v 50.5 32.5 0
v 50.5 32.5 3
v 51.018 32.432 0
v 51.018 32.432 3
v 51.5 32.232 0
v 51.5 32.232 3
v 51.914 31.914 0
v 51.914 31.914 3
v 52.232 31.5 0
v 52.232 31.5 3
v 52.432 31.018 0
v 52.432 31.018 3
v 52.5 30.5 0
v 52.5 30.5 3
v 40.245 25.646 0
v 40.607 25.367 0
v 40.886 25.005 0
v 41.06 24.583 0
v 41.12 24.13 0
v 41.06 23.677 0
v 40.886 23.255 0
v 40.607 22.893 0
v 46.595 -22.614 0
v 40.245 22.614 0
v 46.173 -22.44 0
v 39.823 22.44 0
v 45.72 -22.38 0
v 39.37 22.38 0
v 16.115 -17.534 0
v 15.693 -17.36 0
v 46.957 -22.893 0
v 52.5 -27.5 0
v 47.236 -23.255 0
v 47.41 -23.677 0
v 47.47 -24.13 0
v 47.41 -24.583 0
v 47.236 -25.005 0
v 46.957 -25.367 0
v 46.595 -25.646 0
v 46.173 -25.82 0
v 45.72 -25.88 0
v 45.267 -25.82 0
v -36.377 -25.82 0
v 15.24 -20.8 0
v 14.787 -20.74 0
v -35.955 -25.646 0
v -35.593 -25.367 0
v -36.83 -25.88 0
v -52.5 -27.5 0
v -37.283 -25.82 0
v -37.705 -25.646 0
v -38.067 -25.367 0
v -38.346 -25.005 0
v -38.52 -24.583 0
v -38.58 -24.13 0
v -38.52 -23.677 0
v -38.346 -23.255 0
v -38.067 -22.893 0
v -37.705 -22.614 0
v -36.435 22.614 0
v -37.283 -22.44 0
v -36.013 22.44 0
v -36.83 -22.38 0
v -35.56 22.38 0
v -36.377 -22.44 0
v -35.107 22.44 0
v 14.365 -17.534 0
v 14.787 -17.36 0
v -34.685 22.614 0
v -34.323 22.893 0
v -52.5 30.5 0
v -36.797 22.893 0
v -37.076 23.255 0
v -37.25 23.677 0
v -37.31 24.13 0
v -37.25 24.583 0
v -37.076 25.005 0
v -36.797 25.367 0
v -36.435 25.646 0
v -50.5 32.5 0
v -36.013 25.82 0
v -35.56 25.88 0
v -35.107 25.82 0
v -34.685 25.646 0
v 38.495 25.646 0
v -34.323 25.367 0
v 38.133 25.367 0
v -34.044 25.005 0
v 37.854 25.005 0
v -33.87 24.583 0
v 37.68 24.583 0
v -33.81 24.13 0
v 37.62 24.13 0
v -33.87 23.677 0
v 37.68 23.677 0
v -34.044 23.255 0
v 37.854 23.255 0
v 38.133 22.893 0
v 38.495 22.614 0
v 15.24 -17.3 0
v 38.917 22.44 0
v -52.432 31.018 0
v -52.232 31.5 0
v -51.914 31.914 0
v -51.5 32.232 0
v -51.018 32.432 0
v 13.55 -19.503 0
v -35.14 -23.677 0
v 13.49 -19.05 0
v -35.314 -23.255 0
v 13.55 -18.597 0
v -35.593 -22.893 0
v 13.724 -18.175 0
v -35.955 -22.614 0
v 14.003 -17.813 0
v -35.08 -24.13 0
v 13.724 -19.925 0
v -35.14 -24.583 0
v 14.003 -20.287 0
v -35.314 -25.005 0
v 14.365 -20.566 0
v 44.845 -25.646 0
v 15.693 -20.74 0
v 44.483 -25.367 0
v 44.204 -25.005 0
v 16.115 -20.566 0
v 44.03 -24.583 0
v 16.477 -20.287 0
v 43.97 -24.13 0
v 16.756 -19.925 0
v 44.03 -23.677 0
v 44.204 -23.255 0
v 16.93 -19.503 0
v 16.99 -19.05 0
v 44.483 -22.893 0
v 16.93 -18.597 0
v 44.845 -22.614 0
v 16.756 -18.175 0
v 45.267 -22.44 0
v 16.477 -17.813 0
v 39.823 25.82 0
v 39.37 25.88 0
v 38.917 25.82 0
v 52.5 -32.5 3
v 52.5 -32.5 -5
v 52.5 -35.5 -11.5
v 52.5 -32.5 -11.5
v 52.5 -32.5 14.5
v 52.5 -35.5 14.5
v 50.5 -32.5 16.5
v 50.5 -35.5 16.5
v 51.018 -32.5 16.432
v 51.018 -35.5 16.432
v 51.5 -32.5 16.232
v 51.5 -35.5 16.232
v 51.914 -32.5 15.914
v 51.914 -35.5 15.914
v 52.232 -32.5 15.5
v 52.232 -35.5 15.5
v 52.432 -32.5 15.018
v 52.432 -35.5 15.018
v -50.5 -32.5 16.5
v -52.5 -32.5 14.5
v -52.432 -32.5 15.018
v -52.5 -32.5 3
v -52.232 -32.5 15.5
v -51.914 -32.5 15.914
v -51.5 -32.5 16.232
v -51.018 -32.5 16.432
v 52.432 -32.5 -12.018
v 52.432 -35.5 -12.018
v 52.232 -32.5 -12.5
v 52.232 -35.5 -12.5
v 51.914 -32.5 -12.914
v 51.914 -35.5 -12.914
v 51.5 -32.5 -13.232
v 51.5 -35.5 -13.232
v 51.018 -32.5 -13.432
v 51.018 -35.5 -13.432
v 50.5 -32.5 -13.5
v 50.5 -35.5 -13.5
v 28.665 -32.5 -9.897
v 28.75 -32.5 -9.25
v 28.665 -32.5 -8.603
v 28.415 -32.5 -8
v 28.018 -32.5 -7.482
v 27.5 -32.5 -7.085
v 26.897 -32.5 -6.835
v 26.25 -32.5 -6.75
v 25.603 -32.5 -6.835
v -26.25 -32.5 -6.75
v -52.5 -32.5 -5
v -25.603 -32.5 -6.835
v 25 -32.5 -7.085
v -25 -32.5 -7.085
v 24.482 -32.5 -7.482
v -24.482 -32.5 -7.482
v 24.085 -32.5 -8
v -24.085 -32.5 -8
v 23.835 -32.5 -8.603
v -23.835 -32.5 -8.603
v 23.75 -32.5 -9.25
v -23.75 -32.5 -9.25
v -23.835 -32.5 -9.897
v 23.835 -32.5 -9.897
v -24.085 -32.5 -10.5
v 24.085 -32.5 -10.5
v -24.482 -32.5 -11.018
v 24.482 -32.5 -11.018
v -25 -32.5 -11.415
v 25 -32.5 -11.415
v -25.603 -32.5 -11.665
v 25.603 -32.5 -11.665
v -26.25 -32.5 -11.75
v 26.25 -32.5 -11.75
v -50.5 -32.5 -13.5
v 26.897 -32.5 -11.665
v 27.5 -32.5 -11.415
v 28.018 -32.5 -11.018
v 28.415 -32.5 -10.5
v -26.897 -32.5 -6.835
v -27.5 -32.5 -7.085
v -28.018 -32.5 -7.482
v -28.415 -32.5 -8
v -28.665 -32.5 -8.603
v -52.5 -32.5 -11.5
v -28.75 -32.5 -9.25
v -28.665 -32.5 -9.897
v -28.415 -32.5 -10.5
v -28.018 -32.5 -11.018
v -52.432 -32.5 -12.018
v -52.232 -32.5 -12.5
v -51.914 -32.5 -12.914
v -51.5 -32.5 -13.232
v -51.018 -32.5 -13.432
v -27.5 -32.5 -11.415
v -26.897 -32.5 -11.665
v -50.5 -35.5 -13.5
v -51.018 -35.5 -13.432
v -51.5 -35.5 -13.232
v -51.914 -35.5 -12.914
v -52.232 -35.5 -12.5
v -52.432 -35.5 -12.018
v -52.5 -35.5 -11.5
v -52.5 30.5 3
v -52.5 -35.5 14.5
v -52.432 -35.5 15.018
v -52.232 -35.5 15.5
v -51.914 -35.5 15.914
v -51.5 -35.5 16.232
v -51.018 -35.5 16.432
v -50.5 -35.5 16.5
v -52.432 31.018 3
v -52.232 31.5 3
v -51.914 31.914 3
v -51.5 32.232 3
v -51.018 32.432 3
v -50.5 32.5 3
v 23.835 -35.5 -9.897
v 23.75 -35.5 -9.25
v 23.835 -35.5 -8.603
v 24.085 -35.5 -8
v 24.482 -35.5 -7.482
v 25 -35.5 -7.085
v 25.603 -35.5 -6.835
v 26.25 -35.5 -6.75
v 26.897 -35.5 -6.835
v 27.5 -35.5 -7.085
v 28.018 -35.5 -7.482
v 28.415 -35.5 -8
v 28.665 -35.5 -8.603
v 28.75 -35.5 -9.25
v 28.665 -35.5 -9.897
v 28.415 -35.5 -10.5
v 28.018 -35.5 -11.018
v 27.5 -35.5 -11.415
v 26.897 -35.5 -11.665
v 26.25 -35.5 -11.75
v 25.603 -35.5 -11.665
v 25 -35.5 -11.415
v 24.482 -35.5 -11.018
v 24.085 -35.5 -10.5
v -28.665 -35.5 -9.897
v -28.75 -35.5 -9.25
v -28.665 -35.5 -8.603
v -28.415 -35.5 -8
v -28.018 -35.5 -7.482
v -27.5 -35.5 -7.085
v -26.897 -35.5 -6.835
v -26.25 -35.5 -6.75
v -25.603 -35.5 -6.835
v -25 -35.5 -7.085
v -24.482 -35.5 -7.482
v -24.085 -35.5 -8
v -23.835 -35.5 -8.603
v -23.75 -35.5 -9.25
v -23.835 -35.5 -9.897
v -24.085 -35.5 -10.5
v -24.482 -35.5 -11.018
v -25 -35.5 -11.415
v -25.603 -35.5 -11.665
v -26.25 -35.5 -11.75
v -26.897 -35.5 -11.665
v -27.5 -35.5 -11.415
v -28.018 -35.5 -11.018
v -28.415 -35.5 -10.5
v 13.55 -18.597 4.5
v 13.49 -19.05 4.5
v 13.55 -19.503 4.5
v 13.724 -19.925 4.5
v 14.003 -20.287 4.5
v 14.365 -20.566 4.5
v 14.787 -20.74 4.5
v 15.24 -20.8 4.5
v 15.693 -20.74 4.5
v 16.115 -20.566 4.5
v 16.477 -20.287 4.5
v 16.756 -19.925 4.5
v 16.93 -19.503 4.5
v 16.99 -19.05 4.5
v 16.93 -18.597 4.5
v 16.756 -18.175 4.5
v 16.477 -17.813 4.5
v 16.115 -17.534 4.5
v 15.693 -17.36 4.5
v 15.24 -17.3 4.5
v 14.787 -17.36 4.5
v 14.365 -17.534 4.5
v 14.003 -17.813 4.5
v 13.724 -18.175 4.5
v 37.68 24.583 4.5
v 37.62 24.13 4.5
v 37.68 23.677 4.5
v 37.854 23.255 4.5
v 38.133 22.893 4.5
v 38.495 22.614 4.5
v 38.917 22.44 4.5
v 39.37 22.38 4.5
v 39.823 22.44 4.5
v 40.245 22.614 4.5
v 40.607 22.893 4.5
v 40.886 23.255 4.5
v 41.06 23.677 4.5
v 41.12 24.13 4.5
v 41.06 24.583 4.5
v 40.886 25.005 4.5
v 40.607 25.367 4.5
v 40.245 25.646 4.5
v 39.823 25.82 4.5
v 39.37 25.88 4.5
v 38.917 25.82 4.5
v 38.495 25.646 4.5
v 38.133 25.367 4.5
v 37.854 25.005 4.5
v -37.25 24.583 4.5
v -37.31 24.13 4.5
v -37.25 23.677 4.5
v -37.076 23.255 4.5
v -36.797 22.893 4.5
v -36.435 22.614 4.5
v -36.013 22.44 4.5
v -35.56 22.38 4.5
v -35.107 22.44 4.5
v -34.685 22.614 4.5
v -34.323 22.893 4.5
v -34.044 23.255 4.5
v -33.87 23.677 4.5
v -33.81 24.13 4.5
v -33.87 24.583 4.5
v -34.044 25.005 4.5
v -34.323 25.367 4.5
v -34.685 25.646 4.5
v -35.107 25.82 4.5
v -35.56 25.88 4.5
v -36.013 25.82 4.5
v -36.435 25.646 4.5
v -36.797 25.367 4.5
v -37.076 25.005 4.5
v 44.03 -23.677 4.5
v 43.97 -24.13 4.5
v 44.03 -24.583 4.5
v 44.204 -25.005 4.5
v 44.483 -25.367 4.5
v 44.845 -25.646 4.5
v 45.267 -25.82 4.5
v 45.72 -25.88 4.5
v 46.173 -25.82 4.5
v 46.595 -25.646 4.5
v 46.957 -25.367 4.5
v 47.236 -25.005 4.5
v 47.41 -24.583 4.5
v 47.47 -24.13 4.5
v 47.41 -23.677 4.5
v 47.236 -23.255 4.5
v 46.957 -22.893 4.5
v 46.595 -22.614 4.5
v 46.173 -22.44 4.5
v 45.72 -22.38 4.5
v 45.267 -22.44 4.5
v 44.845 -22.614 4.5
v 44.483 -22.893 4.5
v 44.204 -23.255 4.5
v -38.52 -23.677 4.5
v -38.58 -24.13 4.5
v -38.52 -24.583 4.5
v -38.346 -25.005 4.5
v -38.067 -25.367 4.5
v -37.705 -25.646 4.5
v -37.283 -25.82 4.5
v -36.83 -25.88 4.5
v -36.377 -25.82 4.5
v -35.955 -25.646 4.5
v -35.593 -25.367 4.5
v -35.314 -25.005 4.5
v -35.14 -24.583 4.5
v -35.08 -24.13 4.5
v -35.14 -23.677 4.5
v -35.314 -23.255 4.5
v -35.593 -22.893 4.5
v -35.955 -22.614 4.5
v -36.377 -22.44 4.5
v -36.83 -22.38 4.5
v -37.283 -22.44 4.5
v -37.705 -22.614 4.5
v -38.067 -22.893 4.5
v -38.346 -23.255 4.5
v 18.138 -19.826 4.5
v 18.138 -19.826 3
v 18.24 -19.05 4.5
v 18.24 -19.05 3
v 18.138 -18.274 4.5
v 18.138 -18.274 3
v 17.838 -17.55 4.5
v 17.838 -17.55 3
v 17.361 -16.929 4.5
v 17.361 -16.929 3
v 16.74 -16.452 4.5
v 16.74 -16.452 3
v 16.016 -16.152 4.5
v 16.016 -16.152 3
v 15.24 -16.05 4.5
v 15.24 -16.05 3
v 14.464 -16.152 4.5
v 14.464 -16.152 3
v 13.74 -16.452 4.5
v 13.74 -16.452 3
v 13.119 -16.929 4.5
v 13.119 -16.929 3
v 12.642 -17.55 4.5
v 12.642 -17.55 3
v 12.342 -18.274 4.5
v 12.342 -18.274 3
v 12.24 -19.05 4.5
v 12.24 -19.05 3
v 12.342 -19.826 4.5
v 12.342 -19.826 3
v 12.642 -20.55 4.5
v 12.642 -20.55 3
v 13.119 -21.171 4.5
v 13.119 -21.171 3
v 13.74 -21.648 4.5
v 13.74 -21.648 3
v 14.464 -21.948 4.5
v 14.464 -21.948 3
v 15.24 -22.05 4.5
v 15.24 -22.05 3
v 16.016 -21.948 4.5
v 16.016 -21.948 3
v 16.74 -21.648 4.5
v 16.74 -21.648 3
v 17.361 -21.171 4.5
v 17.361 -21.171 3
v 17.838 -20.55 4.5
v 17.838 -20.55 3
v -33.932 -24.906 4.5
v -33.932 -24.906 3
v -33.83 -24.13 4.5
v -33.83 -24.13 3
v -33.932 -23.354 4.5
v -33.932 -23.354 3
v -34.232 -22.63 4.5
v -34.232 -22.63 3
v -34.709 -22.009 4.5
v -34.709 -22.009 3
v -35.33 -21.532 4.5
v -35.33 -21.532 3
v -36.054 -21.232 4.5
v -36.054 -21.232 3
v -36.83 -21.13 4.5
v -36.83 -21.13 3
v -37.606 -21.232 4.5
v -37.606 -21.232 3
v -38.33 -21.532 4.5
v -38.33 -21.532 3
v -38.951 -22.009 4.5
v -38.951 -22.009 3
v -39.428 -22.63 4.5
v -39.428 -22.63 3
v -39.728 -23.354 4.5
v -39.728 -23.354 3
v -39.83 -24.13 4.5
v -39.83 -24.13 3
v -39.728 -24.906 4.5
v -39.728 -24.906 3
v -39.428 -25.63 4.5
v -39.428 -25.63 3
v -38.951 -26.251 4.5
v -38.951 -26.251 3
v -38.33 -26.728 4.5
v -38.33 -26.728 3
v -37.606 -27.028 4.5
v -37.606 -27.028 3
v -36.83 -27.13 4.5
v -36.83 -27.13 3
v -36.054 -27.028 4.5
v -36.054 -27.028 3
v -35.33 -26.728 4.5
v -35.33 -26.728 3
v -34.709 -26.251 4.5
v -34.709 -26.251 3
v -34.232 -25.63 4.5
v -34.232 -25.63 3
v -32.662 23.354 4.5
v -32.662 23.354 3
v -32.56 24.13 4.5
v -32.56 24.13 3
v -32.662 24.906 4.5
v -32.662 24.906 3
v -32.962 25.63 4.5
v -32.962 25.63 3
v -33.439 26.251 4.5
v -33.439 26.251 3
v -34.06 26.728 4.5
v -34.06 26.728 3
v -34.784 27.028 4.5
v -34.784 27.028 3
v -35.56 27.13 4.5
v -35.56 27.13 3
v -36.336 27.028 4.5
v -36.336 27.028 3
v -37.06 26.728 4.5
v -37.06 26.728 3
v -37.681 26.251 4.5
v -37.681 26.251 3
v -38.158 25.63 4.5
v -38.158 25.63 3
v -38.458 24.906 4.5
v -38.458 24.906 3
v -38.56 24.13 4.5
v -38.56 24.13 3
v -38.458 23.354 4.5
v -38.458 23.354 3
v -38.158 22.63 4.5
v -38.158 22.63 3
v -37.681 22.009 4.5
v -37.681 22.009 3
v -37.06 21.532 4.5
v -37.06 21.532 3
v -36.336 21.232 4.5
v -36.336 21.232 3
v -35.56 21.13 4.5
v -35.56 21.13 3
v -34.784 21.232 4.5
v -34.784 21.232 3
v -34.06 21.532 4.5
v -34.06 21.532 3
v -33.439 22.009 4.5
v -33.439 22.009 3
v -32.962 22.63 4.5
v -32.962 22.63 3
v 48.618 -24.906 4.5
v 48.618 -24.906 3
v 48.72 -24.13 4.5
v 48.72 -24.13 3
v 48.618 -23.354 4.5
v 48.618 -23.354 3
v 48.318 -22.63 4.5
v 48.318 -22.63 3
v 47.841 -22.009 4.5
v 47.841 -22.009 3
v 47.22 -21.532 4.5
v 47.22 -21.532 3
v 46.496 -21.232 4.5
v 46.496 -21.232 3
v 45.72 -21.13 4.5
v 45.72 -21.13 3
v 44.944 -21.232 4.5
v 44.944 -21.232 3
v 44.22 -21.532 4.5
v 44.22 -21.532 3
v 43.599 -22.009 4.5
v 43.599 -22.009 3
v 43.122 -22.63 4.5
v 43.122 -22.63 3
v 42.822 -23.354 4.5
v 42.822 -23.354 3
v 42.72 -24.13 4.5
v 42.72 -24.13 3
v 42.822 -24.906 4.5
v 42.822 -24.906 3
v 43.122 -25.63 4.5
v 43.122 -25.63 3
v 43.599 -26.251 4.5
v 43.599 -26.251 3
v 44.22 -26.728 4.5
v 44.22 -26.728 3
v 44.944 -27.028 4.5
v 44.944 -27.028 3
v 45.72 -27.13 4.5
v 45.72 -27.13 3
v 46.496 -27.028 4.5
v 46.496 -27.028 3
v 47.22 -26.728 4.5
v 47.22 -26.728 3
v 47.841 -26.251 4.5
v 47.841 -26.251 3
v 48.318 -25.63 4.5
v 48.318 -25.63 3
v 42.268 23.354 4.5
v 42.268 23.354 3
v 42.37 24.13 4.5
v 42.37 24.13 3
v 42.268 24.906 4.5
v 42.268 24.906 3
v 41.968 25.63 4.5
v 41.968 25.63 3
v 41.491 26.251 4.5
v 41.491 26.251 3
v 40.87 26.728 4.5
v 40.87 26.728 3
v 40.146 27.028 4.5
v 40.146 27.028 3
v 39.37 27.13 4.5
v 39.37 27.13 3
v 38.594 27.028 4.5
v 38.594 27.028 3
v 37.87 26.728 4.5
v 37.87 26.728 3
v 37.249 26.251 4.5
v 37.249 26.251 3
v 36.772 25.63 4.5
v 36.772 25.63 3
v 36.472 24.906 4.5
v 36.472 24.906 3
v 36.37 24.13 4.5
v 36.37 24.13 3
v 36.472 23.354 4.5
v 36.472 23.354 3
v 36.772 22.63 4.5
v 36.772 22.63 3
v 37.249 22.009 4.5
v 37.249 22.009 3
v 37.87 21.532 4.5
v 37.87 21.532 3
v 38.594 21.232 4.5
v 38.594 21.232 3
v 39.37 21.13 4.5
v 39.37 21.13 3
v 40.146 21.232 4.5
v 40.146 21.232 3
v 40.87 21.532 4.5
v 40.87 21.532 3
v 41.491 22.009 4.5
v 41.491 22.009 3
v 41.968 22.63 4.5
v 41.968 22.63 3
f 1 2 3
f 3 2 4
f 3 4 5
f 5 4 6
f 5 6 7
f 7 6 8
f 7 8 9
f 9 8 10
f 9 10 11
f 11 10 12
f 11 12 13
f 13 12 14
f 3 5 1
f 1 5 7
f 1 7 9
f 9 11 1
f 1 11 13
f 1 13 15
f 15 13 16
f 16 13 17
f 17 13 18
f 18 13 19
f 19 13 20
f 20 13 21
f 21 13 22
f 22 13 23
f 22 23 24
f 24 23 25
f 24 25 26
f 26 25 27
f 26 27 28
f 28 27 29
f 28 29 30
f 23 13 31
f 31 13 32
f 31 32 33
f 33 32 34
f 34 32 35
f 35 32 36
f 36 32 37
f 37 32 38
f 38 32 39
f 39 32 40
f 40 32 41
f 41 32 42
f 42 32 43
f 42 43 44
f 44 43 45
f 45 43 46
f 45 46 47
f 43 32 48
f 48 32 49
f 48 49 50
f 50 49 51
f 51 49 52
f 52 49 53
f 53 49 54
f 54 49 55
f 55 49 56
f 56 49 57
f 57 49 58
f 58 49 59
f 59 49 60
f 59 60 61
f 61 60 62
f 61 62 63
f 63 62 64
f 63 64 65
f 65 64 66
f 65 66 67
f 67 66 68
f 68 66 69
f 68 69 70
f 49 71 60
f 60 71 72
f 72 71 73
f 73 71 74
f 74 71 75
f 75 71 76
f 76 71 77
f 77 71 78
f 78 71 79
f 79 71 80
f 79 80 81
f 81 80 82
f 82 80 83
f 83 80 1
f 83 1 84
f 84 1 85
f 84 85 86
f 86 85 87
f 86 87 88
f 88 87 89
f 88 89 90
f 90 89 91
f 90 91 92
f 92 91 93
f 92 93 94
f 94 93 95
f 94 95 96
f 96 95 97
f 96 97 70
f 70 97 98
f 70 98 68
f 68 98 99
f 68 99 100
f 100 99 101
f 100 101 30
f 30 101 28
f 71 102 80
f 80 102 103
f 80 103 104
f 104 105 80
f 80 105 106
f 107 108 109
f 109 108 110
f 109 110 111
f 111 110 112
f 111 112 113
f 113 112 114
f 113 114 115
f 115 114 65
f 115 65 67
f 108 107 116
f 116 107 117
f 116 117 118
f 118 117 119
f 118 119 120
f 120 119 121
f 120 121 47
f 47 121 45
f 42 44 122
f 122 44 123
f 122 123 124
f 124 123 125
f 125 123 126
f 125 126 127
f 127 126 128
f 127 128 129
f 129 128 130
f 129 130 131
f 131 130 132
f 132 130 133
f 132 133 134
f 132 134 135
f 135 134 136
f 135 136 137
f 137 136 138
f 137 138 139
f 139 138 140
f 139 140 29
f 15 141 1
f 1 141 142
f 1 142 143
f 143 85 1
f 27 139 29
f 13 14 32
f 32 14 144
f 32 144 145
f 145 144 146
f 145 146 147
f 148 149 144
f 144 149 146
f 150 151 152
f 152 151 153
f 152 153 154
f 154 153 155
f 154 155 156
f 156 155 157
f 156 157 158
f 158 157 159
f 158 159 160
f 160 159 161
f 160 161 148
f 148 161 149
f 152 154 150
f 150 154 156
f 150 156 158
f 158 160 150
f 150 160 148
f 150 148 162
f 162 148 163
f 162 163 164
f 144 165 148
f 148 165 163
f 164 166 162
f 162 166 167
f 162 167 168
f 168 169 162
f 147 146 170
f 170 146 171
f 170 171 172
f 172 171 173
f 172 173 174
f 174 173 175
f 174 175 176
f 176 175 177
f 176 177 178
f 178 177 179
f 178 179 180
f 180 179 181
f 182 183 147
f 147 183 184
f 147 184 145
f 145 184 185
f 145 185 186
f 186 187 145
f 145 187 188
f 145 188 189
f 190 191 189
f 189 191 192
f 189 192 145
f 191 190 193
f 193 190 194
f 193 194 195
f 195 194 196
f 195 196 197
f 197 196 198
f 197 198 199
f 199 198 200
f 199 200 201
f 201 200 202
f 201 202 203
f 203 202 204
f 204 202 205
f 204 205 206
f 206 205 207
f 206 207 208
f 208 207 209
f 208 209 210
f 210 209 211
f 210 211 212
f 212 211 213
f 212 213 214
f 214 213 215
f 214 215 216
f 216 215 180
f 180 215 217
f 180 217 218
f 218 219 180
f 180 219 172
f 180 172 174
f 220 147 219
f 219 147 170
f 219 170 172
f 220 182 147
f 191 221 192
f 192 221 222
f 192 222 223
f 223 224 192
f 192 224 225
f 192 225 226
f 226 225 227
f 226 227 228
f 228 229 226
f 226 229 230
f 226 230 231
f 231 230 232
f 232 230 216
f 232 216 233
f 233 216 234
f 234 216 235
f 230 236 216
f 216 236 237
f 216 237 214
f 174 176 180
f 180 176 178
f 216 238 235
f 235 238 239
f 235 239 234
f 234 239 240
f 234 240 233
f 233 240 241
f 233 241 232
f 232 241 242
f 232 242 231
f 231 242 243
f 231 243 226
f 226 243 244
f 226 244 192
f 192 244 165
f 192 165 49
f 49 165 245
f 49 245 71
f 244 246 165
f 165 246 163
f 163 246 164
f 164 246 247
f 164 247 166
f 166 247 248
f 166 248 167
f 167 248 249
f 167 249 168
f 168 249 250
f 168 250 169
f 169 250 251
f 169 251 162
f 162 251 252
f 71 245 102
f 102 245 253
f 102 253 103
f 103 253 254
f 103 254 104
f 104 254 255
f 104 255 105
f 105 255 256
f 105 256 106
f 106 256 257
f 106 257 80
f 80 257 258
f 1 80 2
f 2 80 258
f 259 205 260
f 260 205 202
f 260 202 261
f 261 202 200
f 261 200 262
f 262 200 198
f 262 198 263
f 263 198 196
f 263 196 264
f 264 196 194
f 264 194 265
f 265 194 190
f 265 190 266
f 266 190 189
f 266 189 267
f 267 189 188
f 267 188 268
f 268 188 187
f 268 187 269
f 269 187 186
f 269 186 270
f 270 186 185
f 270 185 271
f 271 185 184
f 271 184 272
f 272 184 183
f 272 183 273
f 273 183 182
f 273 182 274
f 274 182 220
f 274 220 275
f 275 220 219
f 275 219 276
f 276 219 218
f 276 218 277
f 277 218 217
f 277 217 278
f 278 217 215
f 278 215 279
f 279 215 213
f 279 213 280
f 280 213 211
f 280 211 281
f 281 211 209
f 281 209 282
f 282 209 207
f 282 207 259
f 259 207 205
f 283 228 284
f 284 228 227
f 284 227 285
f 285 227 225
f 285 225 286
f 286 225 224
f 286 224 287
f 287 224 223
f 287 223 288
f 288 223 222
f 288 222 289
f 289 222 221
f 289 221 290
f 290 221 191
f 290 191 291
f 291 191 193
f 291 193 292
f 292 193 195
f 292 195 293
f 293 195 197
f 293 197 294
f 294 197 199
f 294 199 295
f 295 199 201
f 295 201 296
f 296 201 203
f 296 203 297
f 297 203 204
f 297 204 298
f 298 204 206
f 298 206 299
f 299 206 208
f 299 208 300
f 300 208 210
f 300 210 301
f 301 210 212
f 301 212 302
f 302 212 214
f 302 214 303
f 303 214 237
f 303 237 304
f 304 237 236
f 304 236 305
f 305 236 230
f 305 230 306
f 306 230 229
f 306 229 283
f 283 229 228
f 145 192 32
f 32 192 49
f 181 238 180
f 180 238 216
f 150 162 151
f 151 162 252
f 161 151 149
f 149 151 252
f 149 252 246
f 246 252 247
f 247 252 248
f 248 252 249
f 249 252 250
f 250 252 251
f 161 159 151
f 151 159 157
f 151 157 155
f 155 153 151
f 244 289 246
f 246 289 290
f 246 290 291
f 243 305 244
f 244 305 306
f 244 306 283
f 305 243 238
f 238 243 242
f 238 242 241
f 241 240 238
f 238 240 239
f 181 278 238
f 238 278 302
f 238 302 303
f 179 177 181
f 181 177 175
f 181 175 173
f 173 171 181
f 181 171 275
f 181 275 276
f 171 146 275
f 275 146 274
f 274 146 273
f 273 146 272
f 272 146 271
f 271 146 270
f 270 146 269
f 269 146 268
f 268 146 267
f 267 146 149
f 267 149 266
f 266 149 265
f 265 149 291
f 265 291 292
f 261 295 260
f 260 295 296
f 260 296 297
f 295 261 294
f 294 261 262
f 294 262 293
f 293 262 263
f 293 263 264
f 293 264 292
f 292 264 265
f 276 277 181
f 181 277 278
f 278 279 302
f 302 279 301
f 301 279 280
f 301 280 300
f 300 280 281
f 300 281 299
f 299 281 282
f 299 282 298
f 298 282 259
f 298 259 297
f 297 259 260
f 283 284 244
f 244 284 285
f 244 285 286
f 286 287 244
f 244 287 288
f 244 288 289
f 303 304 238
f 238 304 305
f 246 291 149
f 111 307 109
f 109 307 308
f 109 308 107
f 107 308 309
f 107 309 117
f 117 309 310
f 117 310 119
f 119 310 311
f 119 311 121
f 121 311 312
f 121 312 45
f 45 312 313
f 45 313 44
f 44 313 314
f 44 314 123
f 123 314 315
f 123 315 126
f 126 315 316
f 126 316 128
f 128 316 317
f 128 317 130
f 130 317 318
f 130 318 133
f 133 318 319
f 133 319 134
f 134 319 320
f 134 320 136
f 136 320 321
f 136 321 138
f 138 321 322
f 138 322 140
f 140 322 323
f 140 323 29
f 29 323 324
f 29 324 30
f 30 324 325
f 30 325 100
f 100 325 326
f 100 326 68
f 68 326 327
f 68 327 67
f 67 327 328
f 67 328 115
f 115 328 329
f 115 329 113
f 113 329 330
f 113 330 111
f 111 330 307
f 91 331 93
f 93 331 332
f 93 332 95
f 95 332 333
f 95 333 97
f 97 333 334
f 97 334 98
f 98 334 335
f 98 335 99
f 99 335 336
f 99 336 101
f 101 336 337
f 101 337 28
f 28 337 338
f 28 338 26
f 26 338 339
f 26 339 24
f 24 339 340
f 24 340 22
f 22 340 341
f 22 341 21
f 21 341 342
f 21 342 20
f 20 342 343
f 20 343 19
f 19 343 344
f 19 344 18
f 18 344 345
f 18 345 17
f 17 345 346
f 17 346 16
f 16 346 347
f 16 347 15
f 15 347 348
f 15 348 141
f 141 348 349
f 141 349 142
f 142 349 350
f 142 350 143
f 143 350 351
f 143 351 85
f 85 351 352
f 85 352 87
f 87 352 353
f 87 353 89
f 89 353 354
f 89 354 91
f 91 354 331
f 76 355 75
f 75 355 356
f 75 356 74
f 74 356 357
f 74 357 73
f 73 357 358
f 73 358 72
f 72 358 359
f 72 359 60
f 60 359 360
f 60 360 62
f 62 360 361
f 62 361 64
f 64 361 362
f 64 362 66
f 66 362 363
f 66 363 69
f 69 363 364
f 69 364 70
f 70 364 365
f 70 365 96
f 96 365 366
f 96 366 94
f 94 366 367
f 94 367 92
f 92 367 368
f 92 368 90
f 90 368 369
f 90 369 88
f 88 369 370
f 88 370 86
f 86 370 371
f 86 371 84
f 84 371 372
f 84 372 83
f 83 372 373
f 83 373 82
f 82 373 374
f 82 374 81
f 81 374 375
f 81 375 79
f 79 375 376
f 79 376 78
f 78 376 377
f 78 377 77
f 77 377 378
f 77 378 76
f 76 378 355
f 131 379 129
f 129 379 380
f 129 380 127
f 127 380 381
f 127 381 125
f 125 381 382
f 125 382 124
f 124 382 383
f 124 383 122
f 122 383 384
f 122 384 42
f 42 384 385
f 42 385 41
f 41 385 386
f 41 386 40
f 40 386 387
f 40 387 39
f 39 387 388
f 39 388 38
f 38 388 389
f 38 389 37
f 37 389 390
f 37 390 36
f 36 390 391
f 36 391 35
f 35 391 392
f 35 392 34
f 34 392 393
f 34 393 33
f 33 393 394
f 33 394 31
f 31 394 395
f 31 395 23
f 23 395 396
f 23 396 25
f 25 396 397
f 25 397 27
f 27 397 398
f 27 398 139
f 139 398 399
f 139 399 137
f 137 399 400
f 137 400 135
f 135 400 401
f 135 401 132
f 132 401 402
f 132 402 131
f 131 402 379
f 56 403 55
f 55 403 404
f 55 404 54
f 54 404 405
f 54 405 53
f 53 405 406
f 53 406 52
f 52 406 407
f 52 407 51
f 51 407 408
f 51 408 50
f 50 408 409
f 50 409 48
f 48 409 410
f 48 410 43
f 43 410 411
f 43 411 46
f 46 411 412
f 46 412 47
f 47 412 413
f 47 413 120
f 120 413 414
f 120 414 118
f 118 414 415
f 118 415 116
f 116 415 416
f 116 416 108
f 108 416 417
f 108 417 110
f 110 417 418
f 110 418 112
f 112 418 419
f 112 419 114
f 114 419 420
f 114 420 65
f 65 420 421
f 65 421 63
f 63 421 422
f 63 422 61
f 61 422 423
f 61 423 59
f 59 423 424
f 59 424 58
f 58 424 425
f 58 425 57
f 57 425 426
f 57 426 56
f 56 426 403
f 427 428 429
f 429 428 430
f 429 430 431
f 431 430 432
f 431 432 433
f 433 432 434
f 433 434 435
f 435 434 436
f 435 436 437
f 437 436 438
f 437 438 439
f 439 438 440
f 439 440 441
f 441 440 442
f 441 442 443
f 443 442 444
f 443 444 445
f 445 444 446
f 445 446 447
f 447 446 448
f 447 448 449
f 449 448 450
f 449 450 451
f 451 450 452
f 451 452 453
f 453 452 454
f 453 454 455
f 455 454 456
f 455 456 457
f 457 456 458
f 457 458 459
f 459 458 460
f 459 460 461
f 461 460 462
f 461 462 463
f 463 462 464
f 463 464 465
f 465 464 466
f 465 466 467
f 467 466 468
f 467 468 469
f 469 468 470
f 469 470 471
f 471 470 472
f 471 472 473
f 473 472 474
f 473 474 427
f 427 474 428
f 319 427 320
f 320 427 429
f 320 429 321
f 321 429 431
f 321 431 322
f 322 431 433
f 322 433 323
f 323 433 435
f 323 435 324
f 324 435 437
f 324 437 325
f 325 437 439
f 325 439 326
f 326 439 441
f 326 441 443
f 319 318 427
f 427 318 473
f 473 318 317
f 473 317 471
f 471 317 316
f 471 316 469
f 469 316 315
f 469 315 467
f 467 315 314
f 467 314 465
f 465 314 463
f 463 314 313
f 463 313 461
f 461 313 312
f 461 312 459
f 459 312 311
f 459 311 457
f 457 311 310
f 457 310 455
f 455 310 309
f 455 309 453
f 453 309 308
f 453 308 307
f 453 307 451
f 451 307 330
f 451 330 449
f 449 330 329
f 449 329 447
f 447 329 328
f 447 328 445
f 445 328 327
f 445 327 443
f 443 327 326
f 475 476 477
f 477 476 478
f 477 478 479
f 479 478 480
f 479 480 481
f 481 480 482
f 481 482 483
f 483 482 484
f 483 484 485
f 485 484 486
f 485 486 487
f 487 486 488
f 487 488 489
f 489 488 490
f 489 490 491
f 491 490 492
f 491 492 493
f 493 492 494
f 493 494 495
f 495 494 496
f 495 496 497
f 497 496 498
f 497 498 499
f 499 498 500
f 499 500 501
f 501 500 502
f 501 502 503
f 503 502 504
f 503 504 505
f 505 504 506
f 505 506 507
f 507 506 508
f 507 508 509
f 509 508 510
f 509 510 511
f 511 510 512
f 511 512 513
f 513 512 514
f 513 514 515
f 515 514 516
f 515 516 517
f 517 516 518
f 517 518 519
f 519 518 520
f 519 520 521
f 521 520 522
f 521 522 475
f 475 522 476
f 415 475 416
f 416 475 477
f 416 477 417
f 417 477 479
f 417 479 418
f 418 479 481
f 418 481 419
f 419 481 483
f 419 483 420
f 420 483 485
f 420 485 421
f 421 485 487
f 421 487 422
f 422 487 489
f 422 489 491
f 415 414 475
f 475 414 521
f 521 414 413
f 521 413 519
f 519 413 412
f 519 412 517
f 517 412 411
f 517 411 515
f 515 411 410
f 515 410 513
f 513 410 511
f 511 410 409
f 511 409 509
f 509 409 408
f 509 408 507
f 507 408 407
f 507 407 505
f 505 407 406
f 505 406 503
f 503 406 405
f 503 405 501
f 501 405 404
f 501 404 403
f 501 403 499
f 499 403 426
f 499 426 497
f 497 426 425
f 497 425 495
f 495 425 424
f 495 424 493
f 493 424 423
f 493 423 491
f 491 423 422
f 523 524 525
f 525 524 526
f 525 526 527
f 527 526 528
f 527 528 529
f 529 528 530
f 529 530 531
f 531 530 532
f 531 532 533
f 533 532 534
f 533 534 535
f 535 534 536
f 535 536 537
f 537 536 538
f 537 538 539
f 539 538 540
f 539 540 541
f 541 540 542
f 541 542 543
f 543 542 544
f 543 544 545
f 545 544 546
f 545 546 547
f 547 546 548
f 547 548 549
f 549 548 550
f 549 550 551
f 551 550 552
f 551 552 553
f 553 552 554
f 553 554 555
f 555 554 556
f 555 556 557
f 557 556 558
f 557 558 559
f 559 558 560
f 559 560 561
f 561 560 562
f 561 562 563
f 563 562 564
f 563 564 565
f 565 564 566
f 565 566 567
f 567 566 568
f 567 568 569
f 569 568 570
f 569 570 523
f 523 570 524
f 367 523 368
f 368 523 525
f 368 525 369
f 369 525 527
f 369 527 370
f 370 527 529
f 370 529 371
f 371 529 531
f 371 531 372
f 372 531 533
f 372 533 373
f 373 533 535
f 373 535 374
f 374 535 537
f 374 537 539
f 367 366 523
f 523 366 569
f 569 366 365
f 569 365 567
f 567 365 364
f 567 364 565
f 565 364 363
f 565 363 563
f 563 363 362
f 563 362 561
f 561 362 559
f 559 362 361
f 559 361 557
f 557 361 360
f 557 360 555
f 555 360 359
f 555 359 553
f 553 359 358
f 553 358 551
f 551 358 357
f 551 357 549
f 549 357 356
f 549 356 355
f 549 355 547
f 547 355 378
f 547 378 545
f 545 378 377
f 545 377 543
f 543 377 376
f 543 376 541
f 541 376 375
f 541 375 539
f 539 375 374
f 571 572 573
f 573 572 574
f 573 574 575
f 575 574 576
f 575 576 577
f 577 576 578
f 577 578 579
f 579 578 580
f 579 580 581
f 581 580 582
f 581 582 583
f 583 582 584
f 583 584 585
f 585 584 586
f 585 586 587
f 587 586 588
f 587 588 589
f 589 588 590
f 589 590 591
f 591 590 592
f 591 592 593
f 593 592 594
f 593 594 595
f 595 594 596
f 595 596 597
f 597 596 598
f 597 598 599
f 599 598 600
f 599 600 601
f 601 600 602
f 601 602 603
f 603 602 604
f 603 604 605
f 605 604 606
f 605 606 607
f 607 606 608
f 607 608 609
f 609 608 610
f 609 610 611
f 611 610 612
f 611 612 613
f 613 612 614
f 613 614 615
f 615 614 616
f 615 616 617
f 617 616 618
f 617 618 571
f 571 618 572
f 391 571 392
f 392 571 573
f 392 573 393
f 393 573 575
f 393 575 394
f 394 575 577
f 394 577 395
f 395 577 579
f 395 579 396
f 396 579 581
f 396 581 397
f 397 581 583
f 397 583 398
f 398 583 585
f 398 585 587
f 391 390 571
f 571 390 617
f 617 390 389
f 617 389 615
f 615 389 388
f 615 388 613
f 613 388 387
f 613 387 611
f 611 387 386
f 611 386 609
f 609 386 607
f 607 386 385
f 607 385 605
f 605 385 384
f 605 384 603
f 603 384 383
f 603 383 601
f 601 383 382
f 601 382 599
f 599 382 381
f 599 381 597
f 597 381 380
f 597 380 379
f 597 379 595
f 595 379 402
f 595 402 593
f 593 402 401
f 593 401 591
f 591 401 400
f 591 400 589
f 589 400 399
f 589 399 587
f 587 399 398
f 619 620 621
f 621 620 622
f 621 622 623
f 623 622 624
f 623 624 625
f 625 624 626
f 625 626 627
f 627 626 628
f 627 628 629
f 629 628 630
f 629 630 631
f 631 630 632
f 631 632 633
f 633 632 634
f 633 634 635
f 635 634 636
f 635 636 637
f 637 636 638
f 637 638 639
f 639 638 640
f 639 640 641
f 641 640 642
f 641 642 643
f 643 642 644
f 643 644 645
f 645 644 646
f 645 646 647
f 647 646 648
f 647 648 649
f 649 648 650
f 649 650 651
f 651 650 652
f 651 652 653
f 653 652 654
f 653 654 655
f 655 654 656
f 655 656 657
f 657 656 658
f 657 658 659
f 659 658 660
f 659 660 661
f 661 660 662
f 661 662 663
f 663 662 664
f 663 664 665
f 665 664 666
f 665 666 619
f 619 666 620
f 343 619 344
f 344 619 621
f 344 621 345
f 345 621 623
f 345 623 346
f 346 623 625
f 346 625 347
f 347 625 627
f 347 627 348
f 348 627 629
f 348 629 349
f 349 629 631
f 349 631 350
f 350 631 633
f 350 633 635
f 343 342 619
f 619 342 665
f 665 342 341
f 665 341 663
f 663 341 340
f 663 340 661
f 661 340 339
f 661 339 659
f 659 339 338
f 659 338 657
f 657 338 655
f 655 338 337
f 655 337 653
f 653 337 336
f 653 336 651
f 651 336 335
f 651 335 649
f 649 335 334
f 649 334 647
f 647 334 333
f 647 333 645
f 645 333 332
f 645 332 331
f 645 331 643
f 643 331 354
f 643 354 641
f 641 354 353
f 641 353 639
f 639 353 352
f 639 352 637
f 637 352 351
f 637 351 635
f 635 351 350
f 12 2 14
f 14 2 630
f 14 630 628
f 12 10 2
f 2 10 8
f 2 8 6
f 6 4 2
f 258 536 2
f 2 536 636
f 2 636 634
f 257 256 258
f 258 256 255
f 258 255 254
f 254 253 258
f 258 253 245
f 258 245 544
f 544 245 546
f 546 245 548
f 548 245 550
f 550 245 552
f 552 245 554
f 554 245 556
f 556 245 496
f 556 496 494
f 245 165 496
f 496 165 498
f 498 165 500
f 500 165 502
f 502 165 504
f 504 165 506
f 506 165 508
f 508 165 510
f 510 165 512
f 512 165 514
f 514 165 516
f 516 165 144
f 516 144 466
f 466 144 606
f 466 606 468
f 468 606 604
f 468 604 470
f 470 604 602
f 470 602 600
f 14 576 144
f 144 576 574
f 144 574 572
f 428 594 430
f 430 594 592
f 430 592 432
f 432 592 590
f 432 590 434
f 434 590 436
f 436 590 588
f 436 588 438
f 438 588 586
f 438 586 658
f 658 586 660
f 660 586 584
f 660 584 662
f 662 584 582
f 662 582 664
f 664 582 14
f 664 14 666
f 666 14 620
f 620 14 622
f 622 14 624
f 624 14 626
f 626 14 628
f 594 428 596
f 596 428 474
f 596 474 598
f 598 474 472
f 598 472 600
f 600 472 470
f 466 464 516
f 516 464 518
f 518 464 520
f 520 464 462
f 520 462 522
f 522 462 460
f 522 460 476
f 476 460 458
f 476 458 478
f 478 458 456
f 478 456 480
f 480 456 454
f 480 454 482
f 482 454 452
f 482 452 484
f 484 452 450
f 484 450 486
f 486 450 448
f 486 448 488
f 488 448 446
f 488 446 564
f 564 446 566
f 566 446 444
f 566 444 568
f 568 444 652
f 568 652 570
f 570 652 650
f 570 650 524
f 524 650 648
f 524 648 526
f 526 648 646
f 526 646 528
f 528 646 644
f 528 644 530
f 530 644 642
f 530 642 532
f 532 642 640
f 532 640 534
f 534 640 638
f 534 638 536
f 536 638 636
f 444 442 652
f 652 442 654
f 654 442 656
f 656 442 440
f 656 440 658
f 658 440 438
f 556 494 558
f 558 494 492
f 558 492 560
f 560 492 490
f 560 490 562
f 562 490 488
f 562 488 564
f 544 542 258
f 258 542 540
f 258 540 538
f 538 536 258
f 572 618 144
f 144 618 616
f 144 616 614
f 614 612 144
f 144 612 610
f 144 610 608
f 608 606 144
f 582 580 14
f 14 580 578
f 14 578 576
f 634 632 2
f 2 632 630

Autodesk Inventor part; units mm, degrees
ref_plane "YZ Plane" through (0, 0, 0) normal (1, 0, 0) x (0, 1, 0)
ref_plane "XZ Plane" through (0, 0, 0) normal (0, 1, 0) x (-1, 0, 0)
ref_plane "XY Plane" through (0, 0, 0) normal (0, 0, 1) x (1, 0, 0)
sketch "Sketch1" plane through (0, 0, 0) normal (0, 0, 1) x (1, 0, 0)
  line L0 (-52.5, 32.5) -> (52.5, 32.5)
  line L1 (52.5, 32.5) -> (52.5, -32.5)
  line L2 (52.5, -32.5) -> (-52.5, -32.5)
  line L3 (-52.5, -32.5) -> (-52.5, 32.5)
  line L4 (-52.5, 32.5) -> (52.5, -32.5) construction
  line L5 (52.5, 32.5) -> (-52.5, -32.5) construction
  point P0 (0, 0)
  dimension "d0" = 105
  dimension "d1" = 65
extrude "Extrusion1" add sketch "Sketch1" along normal blind 3
sketch "Sketch2" plane through (0, 0, 3) normal (0, 0, 1) x (1, 0, 0)
  line L0 (-50.8, 26.67) -> (50.8, 26.67)
  line L1 (50.8, 26.67) -> (50.8, -26.67)
  line L2 (50.8, -26.67) -> (-50.8, -26.67)
  line L3 (-50.8, -26.67) -> (-50.8, 26.67)
  line L4 (-50.8, 26.67) -> (50.8, -26.67) construction
  line L5 (50.8, 26.67) -> (-50.8, -26.67) construction
  line L6 (50.8, -24.13) -> (-50.8, -24.13)
  line L7 (-35.56, -26.67) -> (-35.56, 26.67)
  line L8 (50.8, 24.13) -> (-50.8, 24.13)
  circle A0 centre (-35.56, 24.13) radius 3
  line L9 (-36.83, -26.67) -> (-36.83, 26.67)
  circle A1 centre (-36.83, -24.13) radius 3
  line L10 (45.72, -26.67) -> (45.72, 26.67)
  circle A2 centre (45.72, -24.13) radius 3
  line L11 (15.24, -26.67) -> (15.24, 26.67)
  line L12 (50.8, -19.05) -> (-50.8, -19.05)
  circle A3 centre (15.24, -19.05) radius 3
  line L13 (39.37, -26.67) -> (39.37, 26.67)
  circle A4 centre (39.37, 24.13) radius 3
  point P0 (0, 0)
  dimension "d4" = 101.6
  dimension "d5" = 53.34
  dimension "d6" = 2.54
  dimension "d7" = 15.24
  dimension "d8" = 50.8
  dimension "d9" = 6
  dimension "d10" = 13.97
  dimension "d11" = 6
  dimension "d12" = 96.52
  dimension "d13" = 6
  dimension "d14" = 66.04
  dimension "d15" = 7.62
  dimension "d16" = 6
  dimension "d17" = 90.17
  dimension "d18" = 6
extrude "Extrusion2" add sketch "Sketch2" along normal blind 1.5 contours L0 A0 | L9 L8 A0 L0 | L0 L7 L8 L9 | L0 A0 L8 L7 | L9 A0 L8 | L8 L7 A0 L9 | L8 A0 L7 | A4 L0 | L0 L13 L8 A4 | A1 L7 L6 L9 | L9 L6 A1 | L0 A4 L8 L13 | L8 L13 A4 | A3 L12 L11 | L11 L12 A3 | A1 L6 L7 | L12 L11 A3 | L9 L2 A1 L6 | L6 L7 L2 L9 | L8 A4 L13 | L12 A3 L11 | L6 A1 L2 L7 | L2 A1 | A2 L6 L10 | L10 L6 A2 | L6 L10 L2 A2 | L6 A2 L2 L10 | L2 A2
sketch "Sketch3" plane through (-35.56, 24.13, 4.5) normal (0, 0, 1) x (1, 0, 0)
  circle A0 centre (74.93, 0) radius 3 projected
  circle A1 centre (81.28, -48.26) radius 3 projected
  circle A2 centre (50.8, -43.18) radius 3 projected
  circle A3 centre (-1.27, -48.26) radius 3 projected
  point P0 (35.56, -24.13)
  point P1 (0, 0)
hole "Hole1" at (-35.56, 24.13, 4.5) at (39.37, 24.13, 4.5) at (45.72, -24.13, 4.5) at (15.24, -19.05, 4.5) at (-36.83, -24.13, 4.5) direction (0, 0, -1) diameter 3.5 end through all
sketch "Sketch4" plane through (-52.5, -32.5, 0) normal (0, -1, 0) x (1, 0, 0)
  line L0 (0, 0) -> (0, 3) projected
  line L1 (0, 1.5) -> (105, 1.5)
  line L2 (105, 0) -> (105, 3) projected
  line L3 (0, 16.5) -> (105, 16.5)
  line L4 (105, 16.5) -> (105, -13.5)
  line L5 (105, -13.5) -> (0, -13.5)
  line L6 (0, -13.5) -> (0, 16.5)
  line L7 (0, 16.5) -> (105, -13.5) construction
  line L8 (105, 16.5) -> (0, -13.5) construction
  point P0 (52.5, 0)
  point P1 (52.5, 1.5)
  dimension "d29" = 30
extrude "Extrusion3" add sketch "Sketch4" along normal blind 3
chamfer "Chamfer1" distance 5 angle 45 1 edges at (0, -32.5, 0)
sketch "Sketch5" plane through (-52.5, -32.5, 0) normal (0, 1, 0) x (1, 0, 0)
  line L0 (105, 5) -> (105, 13.5) projected
  line L1 (105, 9.25) -> (0, 9.25)
  line L2 (0, -16.5) -> (0, 13.5) projected
  line L3 (0, 13.5) -> (105, 13.5) projected
  line L4 (52.5, 13.5) -> (52.5, 5)
  line L5 (105, 5) -> (0, 5) projected
  line L6 (78.75, 13.5) -> (78.75, 5)
  line L7 (26.25, 13.5) -> (26.25, 5)
  point P0 (52.5, 0)
  point P1 (78.75, 9.25)
  point P2 (26.25, 9.25)
  dimension "d36" = 26.25
  dimension "d37" = 26.25
hole "Hole2" at (26.25, -32.5, -9.25) at (-26.25, -32.5, -9.25) direction (0, -1, 0) diameter 5 end through all
fillet "Fillet2" radius 2 6 edges at (-52.5, 32.5, 1.5) (-52.5, -34, 16.5) (-52.5, -34, -13.5) (52.5, -34, -13.5) (52.5, -34, 16.5) (52.5, 32.5, 1.5)
properties part number "Eletronica - suporteArduino"
